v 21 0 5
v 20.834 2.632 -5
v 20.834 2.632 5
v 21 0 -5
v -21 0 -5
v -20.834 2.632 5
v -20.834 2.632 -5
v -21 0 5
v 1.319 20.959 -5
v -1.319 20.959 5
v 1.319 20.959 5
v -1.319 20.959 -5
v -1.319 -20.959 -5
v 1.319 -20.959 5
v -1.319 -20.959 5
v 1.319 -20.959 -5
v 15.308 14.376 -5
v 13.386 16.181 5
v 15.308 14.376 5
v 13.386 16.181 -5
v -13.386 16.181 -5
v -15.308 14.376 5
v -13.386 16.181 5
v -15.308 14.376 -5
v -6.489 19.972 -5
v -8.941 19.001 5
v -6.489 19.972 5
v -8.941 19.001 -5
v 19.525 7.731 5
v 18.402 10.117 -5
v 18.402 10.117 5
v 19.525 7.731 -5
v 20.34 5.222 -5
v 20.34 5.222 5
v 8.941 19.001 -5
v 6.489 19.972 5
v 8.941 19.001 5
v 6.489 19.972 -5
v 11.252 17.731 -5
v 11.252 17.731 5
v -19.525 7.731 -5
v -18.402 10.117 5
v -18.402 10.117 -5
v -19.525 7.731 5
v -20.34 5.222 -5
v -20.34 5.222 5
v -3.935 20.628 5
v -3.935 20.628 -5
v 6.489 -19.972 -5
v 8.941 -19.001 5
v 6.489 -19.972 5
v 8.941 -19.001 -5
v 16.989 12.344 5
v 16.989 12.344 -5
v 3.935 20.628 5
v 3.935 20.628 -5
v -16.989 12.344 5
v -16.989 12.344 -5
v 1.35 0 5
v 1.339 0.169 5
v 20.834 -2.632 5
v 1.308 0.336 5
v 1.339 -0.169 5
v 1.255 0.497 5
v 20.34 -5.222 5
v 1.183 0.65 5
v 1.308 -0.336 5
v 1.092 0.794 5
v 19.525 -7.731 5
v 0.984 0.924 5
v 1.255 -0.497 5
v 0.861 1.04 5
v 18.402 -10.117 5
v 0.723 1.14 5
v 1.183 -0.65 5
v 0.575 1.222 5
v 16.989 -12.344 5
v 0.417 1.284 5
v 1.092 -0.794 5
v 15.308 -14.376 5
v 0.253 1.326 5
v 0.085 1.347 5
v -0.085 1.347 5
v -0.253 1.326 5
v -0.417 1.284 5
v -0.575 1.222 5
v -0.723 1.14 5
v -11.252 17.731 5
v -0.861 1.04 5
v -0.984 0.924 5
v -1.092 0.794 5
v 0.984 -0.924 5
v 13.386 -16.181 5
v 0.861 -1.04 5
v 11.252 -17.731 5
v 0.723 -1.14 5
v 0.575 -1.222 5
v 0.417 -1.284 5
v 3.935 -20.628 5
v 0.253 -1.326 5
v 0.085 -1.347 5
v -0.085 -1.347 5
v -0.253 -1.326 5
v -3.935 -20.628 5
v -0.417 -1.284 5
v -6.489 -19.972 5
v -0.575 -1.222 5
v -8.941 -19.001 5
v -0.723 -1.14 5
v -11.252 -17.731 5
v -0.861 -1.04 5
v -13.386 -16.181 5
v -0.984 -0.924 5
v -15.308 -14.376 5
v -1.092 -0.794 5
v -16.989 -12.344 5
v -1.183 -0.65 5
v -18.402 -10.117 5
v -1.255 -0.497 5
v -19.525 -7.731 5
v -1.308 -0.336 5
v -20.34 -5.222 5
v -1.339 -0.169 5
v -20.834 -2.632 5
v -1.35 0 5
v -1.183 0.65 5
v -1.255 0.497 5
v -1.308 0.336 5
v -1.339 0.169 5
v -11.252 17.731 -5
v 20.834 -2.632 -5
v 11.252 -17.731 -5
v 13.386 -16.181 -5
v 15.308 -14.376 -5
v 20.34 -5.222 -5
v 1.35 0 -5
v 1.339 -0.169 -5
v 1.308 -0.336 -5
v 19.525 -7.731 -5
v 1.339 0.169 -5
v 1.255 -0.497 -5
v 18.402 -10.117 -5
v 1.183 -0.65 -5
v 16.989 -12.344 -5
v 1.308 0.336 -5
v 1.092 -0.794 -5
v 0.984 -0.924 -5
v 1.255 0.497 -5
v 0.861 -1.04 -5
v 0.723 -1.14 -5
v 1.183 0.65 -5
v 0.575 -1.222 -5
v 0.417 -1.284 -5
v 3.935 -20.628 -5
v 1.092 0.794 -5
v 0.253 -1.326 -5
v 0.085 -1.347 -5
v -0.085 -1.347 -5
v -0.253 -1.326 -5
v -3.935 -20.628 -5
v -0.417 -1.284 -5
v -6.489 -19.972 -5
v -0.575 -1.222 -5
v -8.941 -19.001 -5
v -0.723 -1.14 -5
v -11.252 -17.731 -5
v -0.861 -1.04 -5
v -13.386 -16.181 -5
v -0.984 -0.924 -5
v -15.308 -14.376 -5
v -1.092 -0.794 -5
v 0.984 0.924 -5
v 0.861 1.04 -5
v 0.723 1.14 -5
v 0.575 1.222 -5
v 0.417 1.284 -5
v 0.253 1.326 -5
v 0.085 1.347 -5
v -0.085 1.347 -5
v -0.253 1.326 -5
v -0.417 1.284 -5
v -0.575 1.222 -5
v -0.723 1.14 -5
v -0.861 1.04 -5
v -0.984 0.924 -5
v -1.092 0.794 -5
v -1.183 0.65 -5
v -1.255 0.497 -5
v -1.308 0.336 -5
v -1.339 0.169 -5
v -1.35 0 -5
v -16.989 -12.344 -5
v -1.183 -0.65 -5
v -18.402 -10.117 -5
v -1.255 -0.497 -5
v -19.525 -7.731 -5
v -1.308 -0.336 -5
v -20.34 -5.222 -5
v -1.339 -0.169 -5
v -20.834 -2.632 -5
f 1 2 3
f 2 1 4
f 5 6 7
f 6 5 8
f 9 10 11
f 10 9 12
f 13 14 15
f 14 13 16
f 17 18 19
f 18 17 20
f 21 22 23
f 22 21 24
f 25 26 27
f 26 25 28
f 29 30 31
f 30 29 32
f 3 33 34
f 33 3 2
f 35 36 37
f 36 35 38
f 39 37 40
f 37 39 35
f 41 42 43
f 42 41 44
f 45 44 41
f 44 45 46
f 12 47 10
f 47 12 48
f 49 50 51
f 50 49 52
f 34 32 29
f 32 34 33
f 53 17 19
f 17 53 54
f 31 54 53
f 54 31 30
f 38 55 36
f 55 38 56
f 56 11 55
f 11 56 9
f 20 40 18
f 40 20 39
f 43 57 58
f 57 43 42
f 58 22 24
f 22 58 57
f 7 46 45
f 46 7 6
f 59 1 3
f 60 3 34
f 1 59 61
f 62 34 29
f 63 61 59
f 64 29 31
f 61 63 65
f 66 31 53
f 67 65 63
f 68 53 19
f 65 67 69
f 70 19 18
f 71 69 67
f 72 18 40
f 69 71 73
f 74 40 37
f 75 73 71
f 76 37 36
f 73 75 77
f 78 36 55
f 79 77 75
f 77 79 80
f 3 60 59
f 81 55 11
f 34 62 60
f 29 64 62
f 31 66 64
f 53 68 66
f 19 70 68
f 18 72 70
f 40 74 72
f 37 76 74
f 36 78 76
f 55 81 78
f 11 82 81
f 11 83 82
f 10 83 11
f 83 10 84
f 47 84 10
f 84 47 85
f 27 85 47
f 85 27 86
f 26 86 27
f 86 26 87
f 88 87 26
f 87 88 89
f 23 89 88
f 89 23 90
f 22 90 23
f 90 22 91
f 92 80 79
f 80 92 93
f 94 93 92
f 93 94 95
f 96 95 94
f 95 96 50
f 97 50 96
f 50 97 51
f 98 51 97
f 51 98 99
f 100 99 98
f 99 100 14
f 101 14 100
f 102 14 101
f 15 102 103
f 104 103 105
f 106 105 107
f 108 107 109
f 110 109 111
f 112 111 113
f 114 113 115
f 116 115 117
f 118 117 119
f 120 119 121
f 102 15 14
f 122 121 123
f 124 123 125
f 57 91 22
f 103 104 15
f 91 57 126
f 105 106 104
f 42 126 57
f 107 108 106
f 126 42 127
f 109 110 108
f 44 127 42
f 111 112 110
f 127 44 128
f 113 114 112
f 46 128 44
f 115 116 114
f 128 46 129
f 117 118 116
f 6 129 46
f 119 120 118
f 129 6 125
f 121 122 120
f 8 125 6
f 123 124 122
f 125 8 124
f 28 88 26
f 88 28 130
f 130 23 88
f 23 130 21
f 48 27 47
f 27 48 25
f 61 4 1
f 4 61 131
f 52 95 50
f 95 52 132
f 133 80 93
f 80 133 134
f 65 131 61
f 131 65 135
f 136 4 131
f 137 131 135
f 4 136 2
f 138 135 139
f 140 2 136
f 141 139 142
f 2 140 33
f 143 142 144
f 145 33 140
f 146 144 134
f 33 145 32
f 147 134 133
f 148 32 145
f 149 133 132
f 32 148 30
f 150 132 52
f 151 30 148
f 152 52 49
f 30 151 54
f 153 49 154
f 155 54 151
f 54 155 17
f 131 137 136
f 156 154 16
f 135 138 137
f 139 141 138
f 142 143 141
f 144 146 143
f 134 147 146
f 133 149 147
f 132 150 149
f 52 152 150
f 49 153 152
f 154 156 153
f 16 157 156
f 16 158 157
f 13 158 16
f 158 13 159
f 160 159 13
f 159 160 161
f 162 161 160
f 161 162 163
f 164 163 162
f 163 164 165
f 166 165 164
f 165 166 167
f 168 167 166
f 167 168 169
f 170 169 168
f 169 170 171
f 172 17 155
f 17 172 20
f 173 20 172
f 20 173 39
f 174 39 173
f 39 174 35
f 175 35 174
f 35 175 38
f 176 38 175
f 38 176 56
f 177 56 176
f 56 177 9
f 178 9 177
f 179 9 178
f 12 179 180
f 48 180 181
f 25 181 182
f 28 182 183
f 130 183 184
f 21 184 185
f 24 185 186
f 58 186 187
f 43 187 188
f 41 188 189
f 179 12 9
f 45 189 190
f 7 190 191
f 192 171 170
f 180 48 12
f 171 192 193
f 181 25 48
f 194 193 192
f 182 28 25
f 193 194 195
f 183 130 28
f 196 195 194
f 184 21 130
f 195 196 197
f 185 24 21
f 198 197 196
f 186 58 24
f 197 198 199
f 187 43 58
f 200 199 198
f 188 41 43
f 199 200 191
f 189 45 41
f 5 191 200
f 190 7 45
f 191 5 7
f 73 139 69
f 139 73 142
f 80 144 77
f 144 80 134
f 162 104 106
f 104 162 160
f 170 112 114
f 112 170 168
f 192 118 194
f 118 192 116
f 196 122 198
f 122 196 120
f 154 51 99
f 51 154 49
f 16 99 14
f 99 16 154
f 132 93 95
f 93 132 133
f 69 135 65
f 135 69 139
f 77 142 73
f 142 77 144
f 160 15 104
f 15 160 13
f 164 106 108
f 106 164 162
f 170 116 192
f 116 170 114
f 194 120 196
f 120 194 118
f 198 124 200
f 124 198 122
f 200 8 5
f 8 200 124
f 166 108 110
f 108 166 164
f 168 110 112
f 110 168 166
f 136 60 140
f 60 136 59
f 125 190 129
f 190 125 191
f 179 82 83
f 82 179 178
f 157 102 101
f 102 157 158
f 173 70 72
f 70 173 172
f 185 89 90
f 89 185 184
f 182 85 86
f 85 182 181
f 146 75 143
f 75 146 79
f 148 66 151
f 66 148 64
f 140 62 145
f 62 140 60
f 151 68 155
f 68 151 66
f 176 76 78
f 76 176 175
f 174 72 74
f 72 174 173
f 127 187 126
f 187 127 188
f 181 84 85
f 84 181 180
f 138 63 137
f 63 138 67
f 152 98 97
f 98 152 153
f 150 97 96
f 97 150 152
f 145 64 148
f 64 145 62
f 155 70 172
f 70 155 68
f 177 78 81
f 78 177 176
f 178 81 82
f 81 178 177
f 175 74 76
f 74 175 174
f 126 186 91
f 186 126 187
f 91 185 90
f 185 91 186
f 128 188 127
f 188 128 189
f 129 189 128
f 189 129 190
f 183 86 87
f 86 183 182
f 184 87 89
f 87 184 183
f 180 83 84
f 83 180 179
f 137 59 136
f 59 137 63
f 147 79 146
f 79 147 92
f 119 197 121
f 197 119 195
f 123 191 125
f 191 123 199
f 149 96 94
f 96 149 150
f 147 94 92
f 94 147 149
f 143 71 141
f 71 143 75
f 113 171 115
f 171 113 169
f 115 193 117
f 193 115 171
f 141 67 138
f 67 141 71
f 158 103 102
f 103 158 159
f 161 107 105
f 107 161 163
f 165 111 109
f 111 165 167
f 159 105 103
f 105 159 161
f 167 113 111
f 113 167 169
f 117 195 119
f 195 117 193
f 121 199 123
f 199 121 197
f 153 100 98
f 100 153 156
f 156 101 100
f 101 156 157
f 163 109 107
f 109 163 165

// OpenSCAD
$fn = 50;


difference() {
	union() {
		translate(v = [0, 0, -5.0000000000]) {
			cylinder(h = 10, r = 21.0000000000);
		}
	}
	union() {
		translate(v = [0, 0, -100.0000000000]) {
			cylinder(h = 200, r = 1.3500000000);
		}
	}
}
